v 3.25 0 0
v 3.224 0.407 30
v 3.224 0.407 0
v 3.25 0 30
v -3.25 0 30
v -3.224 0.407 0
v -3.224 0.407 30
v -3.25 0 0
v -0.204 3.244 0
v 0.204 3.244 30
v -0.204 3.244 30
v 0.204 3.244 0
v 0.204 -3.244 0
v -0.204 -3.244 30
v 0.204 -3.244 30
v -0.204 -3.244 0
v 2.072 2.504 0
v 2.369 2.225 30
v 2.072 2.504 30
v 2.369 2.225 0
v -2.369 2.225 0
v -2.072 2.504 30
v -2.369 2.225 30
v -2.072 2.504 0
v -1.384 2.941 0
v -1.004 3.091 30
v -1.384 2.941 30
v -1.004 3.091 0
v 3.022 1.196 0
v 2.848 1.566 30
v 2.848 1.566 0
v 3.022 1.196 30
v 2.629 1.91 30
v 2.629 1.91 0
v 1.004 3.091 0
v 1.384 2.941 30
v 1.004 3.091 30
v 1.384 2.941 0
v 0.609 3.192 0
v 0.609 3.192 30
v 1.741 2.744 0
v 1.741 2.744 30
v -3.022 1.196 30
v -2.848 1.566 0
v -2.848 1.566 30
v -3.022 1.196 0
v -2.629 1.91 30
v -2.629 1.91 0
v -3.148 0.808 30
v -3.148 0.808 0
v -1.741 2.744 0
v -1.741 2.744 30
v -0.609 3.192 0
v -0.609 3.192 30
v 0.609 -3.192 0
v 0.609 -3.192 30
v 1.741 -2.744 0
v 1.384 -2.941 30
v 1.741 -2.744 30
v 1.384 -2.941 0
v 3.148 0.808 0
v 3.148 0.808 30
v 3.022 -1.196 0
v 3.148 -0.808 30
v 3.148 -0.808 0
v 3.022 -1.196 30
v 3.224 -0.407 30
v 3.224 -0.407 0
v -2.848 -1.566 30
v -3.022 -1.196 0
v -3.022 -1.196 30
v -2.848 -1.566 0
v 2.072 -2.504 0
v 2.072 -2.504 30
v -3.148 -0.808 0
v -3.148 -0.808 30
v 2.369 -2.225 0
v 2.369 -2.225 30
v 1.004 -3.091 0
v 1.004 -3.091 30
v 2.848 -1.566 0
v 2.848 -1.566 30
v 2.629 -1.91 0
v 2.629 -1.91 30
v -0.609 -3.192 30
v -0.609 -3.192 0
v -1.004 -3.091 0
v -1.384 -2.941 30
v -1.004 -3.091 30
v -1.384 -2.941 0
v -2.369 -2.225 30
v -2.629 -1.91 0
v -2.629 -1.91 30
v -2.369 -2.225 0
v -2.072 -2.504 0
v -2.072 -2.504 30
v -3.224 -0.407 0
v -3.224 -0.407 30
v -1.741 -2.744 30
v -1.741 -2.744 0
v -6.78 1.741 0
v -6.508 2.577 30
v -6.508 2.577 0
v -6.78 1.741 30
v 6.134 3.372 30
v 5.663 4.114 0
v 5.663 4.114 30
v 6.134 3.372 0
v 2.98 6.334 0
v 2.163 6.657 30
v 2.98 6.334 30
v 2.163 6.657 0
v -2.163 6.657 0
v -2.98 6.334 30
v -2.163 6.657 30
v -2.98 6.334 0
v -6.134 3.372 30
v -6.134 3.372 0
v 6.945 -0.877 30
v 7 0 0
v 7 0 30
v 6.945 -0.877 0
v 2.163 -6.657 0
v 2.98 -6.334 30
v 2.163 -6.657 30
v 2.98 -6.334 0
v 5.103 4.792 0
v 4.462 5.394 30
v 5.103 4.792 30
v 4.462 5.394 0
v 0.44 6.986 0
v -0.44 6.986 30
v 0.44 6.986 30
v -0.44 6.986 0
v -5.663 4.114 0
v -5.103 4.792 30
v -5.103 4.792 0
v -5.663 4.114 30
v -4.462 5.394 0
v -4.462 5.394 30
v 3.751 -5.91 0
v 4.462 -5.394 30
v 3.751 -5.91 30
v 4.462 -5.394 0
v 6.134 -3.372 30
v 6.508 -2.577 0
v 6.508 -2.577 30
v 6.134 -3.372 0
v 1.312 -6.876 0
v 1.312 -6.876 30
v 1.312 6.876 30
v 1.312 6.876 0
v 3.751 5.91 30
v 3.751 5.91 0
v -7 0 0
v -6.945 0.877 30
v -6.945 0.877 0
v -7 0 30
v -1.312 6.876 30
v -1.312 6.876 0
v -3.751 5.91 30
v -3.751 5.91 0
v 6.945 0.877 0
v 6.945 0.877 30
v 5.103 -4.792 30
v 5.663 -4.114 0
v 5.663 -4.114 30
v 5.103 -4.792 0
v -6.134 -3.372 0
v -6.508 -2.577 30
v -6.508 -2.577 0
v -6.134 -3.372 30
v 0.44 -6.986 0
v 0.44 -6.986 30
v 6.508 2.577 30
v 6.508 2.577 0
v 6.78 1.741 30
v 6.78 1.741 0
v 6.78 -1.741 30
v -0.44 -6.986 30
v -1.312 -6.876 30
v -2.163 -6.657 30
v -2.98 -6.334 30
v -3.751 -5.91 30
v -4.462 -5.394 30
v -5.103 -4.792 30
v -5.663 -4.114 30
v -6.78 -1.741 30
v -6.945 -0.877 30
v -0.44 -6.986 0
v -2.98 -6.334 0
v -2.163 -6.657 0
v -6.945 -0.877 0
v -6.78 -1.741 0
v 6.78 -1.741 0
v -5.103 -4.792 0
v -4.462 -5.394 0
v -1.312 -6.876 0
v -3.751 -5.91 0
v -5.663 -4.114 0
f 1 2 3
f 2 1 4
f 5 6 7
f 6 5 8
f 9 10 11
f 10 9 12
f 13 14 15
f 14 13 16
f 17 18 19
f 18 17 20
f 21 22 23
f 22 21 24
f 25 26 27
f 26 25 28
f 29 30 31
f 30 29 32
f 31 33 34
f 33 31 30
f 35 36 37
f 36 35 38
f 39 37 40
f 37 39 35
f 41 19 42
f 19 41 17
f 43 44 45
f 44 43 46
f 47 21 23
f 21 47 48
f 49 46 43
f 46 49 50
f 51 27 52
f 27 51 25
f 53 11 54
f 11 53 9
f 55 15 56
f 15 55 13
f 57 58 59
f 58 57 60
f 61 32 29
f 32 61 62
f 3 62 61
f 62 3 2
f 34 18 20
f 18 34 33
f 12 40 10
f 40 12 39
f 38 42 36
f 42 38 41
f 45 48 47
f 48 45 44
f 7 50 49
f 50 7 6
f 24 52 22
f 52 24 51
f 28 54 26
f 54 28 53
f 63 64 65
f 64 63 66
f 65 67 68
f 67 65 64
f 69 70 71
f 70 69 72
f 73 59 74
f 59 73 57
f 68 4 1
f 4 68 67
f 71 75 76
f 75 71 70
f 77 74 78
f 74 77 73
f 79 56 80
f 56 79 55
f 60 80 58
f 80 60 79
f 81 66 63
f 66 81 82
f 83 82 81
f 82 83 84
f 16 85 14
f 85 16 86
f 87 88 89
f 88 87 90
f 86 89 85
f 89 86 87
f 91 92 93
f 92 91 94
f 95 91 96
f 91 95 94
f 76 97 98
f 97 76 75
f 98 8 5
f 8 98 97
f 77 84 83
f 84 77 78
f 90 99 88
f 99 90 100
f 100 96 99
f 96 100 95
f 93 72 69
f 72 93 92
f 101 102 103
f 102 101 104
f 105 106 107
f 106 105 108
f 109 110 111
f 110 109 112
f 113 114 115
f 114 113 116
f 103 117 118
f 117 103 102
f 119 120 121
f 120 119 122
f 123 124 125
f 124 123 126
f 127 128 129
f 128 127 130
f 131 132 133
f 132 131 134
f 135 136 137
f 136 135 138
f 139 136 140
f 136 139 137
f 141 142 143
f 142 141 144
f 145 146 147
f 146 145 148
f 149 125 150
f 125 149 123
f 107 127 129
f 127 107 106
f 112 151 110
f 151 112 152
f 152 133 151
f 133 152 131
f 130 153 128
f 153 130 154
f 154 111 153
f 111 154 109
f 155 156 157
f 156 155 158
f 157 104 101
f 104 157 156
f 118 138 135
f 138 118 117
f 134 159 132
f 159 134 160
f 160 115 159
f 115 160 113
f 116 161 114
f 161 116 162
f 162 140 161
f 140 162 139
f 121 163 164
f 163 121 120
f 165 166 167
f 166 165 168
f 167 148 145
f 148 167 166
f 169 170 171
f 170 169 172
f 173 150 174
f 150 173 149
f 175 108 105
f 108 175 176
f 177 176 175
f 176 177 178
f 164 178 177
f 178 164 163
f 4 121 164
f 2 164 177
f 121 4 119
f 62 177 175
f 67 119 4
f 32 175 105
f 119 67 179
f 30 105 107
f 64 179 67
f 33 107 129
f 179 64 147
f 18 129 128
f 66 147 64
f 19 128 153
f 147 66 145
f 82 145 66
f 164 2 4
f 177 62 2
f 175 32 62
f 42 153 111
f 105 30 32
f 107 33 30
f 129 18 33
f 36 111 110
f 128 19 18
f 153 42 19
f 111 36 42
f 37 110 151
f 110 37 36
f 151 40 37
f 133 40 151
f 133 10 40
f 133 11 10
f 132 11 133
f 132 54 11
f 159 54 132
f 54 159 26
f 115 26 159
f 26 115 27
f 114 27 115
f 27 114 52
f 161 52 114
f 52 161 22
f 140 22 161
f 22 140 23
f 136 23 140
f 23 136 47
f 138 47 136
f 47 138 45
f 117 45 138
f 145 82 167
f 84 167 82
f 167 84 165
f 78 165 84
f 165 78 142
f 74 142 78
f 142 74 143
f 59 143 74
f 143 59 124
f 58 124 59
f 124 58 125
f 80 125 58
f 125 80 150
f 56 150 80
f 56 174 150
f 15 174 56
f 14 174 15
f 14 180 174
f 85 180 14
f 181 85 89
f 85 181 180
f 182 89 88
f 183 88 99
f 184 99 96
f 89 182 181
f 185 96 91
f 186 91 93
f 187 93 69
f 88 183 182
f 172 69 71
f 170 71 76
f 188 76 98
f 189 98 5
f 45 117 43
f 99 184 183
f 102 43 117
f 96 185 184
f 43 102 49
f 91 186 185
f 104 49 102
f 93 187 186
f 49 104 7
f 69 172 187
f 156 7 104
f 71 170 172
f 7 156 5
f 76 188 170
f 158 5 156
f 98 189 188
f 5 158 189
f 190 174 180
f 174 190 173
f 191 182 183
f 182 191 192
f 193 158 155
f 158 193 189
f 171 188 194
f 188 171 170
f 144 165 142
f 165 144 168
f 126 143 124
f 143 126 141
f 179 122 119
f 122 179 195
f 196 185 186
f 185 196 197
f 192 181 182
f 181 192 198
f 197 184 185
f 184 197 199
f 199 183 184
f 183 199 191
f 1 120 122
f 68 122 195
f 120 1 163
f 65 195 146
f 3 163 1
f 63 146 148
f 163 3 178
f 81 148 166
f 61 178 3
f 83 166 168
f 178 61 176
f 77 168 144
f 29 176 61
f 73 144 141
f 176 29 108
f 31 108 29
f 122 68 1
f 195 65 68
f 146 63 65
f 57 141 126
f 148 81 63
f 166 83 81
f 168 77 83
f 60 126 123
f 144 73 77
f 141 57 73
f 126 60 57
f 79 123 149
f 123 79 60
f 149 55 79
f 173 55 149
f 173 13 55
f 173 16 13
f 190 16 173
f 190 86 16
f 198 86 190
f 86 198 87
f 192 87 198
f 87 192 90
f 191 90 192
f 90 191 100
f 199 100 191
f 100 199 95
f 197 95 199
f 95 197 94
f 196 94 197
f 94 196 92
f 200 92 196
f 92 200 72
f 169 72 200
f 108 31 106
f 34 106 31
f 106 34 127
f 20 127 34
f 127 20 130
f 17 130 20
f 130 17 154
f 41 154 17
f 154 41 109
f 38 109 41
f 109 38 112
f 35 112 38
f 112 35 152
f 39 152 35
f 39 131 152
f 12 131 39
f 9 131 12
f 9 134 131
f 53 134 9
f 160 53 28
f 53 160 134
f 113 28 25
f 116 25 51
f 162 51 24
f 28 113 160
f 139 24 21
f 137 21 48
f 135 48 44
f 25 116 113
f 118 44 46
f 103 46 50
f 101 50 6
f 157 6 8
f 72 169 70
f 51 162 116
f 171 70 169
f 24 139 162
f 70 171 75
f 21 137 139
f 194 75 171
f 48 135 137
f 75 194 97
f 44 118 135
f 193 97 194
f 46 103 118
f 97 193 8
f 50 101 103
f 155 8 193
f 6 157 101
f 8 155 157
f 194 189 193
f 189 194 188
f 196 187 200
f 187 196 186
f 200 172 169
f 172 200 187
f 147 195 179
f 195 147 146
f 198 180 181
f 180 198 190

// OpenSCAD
$fn = 50;


difference() {
	union() {
		cylinder(h = 30, r = 7.0000000000);
	}
	union() {
		translate(v = [0, 0, -100]) {
			cylinder(h = 200, r = 3.2500000000);
		}
		translate(v = [0, 0, -100]) {
			cylinder(h = 200, r = 1.8000000000);
		}
	}
}
